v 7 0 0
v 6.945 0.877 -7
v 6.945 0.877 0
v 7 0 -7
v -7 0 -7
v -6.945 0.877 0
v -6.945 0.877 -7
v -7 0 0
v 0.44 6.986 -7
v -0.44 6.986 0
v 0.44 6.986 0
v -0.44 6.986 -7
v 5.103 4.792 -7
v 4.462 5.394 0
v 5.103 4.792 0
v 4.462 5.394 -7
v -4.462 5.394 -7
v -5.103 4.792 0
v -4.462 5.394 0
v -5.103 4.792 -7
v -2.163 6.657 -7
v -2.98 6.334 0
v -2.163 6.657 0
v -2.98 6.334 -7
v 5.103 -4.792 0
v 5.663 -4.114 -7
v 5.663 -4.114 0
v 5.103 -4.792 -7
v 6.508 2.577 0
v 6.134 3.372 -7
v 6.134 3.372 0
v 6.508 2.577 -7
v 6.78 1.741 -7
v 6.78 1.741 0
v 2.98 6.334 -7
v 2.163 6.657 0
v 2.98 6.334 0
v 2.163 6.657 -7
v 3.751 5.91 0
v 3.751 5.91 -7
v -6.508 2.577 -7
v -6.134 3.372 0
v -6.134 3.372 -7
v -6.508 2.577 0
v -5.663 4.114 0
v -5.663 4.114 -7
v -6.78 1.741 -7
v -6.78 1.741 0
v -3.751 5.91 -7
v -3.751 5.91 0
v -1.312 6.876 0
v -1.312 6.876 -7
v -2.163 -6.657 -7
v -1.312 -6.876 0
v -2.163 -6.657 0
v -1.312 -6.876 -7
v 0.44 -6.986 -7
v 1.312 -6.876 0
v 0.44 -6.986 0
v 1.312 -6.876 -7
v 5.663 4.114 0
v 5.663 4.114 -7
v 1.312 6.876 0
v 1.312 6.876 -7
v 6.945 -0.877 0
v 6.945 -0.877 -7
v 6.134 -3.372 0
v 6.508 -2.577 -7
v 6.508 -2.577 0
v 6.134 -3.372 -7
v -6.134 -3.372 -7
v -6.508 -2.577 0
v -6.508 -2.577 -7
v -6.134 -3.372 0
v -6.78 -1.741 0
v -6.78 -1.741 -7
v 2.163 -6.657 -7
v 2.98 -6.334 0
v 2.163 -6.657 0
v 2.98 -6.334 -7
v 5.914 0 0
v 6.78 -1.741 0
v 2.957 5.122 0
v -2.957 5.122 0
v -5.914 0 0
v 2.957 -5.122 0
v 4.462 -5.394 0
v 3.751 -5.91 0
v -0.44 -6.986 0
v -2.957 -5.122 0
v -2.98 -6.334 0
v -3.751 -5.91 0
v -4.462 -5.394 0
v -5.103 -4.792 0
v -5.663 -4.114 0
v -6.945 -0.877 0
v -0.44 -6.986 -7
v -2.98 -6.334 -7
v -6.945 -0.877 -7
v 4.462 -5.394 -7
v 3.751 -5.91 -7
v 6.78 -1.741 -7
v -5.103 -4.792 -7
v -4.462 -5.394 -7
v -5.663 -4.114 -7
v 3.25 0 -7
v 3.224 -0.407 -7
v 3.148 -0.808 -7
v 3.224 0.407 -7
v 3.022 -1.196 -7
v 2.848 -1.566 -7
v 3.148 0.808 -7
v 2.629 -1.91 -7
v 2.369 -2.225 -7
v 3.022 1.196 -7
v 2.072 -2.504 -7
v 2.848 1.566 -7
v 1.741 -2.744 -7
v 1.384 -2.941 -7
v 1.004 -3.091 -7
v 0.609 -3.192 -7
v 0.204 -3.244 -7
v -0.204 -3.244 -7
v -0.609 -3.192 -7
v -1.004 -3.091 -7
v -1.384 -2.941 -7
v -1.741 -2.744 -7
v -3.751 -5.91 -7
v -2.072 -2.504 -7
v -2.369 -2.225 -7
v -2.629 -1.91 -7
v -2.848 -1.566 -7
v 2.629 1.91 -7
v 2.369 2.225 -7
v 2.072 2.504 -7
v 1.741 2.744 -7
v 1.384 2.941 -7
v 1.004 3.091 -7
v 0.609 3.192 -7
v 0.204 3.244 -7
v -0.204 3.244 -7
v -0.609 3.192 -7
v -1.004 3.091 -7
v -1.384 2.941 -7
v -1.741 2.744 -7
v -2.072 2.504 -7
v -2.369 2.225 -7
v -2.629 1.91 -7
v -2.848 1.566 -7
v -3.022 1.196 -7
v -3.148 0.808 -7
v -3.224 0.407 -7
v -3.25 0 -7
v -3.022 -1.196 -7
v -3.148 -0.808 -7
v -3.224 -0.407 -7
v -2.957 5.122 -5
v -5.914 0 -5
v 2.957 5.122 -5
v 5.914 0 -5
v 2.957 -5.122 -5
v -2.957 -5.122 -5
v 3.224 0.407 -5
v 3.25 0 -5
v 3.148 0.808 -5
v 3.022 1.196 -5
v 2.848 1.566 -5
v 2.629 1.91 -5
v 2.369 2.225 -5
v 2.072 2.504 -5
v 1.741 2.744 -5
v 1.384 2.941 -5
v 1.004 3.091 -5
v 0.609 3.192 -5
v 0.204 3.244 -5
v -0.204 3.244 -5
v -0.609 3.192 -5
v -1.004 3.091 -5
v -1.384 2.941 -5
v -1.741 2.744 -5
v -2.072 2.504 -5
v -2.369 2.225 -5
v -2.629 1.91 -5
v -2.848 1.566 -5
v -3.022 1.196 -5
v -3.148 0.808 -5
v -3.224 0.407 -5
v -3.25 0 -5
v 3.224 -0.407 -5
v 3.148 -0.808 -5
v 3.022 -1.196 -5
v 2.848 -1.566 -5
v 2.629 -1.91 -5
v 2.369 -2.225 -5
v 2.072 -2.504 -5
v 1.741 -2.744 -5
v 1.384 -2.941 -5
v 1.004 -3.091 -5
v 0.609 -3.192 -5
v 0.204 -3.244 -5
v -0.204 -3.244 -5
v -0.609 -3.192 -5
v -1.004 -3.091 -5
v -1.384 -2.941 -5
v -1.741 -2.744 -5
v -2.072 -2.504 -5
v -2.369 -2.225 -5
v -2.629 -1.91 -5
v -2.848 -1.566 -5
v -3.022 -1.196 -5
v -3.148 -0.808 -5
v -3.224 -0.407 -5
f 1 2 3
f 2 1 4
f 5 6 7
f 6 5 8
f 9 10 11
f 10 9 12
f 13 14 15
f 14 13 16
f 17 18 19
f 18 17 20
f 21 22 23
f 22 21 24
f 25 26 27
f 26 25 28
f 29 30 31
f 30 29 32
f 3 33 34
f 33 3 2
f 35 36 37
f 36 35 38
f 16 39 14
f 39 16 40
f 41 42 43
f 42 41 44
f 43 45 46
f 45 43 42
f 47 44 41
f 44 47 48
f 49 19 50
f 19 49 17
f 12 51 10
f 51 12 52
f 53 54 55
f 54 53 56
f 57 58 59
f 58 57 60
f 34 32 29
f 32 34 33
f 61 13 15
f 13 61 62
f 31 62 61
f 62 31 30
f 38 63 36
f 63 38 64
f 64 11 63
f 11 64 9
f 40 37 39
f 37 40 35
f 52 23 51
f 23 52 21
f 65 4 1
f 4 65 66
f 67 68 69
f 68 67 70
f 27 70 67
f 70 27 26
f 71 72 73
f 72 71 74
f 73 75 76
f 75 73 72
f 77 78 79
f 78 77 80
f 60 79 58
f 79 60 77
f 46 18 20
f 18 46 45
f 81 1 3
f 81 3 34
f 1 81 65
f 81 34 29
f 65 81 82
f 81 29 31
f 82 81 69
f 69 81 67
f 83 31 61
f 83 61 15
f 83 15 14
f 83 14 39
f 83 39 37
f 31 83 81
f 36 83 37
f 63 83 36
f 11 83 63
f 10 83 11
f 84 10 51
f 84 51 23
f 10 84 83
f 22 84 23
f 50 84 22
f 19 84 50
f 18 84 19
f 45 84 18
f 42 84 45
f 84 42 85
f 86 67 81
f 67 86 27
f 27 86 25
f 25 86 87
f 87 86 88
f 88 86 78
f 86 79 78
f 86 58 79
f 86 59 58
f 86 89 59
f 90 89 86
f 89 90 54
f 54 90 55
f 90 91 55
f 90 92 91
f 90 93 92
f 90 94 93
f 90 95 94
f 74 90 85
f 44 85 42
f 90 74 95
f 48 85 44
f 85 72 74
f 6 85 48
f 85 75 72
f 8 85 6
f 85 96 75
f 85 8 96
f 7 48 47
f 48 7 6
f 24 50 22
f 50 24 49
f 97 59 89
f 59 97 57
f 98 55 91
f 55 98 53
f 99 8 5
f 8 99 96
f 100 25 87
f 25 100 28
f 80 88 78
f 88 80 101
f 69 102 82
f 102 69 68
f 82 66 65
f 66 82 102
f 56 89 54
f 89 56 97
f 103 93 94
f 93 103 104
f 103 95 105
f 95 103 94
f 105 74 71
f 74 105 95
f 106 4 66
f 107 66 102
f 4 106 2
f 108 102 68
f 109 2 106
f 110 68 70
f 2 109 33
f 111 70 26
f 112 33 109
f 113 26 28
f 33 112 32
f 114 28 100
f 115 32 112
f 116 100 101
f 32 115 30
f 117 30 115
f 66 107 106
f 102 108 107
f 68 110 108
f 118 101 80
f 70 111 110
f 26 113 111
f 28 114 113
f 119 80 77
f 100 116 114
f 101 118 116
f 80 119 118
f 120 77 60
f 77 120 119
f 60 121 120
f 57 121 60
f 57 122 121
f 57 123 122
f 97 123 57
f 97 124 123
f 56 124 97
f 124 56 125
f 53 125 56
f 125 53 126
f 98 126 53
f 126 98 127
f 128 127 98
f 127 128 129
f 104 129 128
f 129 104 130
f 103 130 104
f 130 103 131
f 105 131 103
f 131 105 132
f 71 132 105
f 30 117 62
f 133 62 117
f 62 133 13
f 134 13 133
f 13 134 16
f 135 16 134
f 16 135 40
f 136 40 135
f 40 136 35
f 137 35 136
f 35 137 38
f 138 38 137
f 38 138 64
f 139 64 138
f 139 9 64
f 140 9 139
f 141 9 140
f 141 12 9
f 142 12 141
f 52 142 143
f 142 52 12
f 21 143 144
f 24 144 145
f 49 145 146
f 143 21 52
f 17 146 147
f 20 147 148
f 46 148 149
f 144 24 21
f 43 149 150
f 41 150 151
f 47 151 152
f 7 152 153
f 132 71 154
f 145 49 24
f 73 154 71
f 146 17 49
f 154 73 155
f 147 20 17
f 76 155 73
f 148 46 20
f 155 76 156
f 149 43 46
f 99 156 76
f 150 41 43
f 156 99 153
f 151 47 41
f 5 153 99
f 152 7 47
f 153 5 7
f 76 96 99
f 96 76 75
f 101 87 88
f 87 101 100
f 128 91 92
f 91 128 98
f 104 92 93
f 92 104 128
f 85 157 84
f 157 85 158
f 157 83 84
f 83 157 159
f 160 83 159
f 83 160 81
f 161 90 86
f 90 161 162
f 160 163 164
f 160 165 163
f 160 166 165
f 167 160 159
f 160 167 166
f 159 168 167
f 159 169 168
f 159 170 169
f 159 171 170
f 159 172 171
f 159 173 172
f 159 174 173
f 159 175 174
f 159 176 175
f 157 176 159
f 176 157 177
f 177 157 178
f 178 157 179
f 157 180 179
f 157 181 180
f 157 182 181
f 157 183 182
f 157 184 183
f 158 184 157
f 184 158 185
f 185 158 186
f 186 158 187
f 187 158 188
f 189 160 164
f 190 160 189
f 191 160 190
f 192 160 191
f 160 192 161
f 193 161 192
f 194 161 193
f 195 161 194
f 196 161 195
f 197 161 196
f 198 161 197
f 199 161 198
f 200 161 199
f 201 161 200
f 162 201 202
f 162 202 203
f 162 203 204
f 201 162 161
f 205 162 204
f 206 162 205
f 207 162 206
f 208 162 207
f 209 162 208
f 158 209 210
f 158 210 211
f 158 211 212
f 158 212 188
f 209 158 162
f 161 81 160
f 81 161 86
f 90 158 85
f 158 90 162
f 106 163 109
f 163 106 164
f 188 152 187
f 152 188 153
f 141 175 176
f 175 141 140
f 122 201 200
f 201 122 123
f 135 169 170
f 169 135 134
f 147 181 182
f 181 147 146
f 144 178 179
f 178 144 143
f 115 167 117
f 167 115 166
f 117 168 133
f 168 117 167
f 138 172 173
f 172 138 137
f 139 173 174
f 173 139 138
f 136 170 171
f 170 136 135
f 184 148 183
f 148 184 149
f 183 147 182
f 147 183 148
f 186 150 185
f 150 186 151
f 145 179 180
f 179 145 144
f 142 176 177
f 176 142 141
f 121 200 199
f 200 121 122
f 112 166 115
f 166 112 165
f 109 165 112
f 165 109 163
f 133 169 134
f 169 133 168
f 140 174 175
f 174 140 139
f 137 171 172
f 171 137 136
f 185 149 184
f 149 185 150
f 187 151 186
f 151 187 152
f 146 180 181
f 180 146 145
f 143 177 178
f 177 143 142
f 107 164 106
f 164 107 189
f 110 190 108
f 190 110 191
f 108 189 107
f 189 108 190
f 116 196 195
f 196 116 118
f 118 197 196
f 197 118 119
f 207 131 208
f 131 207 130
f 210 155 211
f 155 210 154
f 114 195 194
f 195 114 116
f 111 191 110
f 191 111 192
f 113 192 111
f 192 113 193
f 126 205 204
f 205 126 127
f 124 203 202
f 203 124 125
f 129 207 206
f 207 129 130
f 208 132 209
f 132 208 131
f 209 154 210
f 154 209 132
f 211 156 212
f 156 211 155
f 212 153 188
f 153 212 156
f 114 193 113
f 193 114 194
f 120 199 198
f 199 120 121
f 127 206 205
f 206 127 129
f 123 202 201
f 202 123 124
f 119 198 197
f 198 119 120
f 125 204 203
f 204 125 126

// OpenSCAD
$fn = 50;


difference() {
	union() {
		translate(v = [0, 0, -7.0000000000]) {
			cylinder(h = 7.0000000000, r = 7.0000000000);
		}
		translate(v = [0, 0, -5.5000000000]) {
			cylinder(h = 5.5000000000, r = 2.8750000000);
		}
	}
	union() {
		translate(v = [0, 0, 0]) {
			rotate(a = [0, 0, 0]) {
				difference() {
					union() {
						translate(v = [0, 0, -5]) {
							#linear_extrude(height = 5) {
								polygon(points = [[5.9142500000, 0.0000000000], [2.9571250000, 5.1218907443], [-2.9571250000, 5.1218907443], [-5.9142500000, 0.0000000000], [-2.9571250000, -5.1218907443], [2.9571250000, -5.1218907443]]);
							}
						}
					}
					union();
				}
			}
		}
		#translate(v = [0, 0, -100.0000000000]) {
			cylinder(h = 200, r = 3.2500000000);
		}
	}
}
